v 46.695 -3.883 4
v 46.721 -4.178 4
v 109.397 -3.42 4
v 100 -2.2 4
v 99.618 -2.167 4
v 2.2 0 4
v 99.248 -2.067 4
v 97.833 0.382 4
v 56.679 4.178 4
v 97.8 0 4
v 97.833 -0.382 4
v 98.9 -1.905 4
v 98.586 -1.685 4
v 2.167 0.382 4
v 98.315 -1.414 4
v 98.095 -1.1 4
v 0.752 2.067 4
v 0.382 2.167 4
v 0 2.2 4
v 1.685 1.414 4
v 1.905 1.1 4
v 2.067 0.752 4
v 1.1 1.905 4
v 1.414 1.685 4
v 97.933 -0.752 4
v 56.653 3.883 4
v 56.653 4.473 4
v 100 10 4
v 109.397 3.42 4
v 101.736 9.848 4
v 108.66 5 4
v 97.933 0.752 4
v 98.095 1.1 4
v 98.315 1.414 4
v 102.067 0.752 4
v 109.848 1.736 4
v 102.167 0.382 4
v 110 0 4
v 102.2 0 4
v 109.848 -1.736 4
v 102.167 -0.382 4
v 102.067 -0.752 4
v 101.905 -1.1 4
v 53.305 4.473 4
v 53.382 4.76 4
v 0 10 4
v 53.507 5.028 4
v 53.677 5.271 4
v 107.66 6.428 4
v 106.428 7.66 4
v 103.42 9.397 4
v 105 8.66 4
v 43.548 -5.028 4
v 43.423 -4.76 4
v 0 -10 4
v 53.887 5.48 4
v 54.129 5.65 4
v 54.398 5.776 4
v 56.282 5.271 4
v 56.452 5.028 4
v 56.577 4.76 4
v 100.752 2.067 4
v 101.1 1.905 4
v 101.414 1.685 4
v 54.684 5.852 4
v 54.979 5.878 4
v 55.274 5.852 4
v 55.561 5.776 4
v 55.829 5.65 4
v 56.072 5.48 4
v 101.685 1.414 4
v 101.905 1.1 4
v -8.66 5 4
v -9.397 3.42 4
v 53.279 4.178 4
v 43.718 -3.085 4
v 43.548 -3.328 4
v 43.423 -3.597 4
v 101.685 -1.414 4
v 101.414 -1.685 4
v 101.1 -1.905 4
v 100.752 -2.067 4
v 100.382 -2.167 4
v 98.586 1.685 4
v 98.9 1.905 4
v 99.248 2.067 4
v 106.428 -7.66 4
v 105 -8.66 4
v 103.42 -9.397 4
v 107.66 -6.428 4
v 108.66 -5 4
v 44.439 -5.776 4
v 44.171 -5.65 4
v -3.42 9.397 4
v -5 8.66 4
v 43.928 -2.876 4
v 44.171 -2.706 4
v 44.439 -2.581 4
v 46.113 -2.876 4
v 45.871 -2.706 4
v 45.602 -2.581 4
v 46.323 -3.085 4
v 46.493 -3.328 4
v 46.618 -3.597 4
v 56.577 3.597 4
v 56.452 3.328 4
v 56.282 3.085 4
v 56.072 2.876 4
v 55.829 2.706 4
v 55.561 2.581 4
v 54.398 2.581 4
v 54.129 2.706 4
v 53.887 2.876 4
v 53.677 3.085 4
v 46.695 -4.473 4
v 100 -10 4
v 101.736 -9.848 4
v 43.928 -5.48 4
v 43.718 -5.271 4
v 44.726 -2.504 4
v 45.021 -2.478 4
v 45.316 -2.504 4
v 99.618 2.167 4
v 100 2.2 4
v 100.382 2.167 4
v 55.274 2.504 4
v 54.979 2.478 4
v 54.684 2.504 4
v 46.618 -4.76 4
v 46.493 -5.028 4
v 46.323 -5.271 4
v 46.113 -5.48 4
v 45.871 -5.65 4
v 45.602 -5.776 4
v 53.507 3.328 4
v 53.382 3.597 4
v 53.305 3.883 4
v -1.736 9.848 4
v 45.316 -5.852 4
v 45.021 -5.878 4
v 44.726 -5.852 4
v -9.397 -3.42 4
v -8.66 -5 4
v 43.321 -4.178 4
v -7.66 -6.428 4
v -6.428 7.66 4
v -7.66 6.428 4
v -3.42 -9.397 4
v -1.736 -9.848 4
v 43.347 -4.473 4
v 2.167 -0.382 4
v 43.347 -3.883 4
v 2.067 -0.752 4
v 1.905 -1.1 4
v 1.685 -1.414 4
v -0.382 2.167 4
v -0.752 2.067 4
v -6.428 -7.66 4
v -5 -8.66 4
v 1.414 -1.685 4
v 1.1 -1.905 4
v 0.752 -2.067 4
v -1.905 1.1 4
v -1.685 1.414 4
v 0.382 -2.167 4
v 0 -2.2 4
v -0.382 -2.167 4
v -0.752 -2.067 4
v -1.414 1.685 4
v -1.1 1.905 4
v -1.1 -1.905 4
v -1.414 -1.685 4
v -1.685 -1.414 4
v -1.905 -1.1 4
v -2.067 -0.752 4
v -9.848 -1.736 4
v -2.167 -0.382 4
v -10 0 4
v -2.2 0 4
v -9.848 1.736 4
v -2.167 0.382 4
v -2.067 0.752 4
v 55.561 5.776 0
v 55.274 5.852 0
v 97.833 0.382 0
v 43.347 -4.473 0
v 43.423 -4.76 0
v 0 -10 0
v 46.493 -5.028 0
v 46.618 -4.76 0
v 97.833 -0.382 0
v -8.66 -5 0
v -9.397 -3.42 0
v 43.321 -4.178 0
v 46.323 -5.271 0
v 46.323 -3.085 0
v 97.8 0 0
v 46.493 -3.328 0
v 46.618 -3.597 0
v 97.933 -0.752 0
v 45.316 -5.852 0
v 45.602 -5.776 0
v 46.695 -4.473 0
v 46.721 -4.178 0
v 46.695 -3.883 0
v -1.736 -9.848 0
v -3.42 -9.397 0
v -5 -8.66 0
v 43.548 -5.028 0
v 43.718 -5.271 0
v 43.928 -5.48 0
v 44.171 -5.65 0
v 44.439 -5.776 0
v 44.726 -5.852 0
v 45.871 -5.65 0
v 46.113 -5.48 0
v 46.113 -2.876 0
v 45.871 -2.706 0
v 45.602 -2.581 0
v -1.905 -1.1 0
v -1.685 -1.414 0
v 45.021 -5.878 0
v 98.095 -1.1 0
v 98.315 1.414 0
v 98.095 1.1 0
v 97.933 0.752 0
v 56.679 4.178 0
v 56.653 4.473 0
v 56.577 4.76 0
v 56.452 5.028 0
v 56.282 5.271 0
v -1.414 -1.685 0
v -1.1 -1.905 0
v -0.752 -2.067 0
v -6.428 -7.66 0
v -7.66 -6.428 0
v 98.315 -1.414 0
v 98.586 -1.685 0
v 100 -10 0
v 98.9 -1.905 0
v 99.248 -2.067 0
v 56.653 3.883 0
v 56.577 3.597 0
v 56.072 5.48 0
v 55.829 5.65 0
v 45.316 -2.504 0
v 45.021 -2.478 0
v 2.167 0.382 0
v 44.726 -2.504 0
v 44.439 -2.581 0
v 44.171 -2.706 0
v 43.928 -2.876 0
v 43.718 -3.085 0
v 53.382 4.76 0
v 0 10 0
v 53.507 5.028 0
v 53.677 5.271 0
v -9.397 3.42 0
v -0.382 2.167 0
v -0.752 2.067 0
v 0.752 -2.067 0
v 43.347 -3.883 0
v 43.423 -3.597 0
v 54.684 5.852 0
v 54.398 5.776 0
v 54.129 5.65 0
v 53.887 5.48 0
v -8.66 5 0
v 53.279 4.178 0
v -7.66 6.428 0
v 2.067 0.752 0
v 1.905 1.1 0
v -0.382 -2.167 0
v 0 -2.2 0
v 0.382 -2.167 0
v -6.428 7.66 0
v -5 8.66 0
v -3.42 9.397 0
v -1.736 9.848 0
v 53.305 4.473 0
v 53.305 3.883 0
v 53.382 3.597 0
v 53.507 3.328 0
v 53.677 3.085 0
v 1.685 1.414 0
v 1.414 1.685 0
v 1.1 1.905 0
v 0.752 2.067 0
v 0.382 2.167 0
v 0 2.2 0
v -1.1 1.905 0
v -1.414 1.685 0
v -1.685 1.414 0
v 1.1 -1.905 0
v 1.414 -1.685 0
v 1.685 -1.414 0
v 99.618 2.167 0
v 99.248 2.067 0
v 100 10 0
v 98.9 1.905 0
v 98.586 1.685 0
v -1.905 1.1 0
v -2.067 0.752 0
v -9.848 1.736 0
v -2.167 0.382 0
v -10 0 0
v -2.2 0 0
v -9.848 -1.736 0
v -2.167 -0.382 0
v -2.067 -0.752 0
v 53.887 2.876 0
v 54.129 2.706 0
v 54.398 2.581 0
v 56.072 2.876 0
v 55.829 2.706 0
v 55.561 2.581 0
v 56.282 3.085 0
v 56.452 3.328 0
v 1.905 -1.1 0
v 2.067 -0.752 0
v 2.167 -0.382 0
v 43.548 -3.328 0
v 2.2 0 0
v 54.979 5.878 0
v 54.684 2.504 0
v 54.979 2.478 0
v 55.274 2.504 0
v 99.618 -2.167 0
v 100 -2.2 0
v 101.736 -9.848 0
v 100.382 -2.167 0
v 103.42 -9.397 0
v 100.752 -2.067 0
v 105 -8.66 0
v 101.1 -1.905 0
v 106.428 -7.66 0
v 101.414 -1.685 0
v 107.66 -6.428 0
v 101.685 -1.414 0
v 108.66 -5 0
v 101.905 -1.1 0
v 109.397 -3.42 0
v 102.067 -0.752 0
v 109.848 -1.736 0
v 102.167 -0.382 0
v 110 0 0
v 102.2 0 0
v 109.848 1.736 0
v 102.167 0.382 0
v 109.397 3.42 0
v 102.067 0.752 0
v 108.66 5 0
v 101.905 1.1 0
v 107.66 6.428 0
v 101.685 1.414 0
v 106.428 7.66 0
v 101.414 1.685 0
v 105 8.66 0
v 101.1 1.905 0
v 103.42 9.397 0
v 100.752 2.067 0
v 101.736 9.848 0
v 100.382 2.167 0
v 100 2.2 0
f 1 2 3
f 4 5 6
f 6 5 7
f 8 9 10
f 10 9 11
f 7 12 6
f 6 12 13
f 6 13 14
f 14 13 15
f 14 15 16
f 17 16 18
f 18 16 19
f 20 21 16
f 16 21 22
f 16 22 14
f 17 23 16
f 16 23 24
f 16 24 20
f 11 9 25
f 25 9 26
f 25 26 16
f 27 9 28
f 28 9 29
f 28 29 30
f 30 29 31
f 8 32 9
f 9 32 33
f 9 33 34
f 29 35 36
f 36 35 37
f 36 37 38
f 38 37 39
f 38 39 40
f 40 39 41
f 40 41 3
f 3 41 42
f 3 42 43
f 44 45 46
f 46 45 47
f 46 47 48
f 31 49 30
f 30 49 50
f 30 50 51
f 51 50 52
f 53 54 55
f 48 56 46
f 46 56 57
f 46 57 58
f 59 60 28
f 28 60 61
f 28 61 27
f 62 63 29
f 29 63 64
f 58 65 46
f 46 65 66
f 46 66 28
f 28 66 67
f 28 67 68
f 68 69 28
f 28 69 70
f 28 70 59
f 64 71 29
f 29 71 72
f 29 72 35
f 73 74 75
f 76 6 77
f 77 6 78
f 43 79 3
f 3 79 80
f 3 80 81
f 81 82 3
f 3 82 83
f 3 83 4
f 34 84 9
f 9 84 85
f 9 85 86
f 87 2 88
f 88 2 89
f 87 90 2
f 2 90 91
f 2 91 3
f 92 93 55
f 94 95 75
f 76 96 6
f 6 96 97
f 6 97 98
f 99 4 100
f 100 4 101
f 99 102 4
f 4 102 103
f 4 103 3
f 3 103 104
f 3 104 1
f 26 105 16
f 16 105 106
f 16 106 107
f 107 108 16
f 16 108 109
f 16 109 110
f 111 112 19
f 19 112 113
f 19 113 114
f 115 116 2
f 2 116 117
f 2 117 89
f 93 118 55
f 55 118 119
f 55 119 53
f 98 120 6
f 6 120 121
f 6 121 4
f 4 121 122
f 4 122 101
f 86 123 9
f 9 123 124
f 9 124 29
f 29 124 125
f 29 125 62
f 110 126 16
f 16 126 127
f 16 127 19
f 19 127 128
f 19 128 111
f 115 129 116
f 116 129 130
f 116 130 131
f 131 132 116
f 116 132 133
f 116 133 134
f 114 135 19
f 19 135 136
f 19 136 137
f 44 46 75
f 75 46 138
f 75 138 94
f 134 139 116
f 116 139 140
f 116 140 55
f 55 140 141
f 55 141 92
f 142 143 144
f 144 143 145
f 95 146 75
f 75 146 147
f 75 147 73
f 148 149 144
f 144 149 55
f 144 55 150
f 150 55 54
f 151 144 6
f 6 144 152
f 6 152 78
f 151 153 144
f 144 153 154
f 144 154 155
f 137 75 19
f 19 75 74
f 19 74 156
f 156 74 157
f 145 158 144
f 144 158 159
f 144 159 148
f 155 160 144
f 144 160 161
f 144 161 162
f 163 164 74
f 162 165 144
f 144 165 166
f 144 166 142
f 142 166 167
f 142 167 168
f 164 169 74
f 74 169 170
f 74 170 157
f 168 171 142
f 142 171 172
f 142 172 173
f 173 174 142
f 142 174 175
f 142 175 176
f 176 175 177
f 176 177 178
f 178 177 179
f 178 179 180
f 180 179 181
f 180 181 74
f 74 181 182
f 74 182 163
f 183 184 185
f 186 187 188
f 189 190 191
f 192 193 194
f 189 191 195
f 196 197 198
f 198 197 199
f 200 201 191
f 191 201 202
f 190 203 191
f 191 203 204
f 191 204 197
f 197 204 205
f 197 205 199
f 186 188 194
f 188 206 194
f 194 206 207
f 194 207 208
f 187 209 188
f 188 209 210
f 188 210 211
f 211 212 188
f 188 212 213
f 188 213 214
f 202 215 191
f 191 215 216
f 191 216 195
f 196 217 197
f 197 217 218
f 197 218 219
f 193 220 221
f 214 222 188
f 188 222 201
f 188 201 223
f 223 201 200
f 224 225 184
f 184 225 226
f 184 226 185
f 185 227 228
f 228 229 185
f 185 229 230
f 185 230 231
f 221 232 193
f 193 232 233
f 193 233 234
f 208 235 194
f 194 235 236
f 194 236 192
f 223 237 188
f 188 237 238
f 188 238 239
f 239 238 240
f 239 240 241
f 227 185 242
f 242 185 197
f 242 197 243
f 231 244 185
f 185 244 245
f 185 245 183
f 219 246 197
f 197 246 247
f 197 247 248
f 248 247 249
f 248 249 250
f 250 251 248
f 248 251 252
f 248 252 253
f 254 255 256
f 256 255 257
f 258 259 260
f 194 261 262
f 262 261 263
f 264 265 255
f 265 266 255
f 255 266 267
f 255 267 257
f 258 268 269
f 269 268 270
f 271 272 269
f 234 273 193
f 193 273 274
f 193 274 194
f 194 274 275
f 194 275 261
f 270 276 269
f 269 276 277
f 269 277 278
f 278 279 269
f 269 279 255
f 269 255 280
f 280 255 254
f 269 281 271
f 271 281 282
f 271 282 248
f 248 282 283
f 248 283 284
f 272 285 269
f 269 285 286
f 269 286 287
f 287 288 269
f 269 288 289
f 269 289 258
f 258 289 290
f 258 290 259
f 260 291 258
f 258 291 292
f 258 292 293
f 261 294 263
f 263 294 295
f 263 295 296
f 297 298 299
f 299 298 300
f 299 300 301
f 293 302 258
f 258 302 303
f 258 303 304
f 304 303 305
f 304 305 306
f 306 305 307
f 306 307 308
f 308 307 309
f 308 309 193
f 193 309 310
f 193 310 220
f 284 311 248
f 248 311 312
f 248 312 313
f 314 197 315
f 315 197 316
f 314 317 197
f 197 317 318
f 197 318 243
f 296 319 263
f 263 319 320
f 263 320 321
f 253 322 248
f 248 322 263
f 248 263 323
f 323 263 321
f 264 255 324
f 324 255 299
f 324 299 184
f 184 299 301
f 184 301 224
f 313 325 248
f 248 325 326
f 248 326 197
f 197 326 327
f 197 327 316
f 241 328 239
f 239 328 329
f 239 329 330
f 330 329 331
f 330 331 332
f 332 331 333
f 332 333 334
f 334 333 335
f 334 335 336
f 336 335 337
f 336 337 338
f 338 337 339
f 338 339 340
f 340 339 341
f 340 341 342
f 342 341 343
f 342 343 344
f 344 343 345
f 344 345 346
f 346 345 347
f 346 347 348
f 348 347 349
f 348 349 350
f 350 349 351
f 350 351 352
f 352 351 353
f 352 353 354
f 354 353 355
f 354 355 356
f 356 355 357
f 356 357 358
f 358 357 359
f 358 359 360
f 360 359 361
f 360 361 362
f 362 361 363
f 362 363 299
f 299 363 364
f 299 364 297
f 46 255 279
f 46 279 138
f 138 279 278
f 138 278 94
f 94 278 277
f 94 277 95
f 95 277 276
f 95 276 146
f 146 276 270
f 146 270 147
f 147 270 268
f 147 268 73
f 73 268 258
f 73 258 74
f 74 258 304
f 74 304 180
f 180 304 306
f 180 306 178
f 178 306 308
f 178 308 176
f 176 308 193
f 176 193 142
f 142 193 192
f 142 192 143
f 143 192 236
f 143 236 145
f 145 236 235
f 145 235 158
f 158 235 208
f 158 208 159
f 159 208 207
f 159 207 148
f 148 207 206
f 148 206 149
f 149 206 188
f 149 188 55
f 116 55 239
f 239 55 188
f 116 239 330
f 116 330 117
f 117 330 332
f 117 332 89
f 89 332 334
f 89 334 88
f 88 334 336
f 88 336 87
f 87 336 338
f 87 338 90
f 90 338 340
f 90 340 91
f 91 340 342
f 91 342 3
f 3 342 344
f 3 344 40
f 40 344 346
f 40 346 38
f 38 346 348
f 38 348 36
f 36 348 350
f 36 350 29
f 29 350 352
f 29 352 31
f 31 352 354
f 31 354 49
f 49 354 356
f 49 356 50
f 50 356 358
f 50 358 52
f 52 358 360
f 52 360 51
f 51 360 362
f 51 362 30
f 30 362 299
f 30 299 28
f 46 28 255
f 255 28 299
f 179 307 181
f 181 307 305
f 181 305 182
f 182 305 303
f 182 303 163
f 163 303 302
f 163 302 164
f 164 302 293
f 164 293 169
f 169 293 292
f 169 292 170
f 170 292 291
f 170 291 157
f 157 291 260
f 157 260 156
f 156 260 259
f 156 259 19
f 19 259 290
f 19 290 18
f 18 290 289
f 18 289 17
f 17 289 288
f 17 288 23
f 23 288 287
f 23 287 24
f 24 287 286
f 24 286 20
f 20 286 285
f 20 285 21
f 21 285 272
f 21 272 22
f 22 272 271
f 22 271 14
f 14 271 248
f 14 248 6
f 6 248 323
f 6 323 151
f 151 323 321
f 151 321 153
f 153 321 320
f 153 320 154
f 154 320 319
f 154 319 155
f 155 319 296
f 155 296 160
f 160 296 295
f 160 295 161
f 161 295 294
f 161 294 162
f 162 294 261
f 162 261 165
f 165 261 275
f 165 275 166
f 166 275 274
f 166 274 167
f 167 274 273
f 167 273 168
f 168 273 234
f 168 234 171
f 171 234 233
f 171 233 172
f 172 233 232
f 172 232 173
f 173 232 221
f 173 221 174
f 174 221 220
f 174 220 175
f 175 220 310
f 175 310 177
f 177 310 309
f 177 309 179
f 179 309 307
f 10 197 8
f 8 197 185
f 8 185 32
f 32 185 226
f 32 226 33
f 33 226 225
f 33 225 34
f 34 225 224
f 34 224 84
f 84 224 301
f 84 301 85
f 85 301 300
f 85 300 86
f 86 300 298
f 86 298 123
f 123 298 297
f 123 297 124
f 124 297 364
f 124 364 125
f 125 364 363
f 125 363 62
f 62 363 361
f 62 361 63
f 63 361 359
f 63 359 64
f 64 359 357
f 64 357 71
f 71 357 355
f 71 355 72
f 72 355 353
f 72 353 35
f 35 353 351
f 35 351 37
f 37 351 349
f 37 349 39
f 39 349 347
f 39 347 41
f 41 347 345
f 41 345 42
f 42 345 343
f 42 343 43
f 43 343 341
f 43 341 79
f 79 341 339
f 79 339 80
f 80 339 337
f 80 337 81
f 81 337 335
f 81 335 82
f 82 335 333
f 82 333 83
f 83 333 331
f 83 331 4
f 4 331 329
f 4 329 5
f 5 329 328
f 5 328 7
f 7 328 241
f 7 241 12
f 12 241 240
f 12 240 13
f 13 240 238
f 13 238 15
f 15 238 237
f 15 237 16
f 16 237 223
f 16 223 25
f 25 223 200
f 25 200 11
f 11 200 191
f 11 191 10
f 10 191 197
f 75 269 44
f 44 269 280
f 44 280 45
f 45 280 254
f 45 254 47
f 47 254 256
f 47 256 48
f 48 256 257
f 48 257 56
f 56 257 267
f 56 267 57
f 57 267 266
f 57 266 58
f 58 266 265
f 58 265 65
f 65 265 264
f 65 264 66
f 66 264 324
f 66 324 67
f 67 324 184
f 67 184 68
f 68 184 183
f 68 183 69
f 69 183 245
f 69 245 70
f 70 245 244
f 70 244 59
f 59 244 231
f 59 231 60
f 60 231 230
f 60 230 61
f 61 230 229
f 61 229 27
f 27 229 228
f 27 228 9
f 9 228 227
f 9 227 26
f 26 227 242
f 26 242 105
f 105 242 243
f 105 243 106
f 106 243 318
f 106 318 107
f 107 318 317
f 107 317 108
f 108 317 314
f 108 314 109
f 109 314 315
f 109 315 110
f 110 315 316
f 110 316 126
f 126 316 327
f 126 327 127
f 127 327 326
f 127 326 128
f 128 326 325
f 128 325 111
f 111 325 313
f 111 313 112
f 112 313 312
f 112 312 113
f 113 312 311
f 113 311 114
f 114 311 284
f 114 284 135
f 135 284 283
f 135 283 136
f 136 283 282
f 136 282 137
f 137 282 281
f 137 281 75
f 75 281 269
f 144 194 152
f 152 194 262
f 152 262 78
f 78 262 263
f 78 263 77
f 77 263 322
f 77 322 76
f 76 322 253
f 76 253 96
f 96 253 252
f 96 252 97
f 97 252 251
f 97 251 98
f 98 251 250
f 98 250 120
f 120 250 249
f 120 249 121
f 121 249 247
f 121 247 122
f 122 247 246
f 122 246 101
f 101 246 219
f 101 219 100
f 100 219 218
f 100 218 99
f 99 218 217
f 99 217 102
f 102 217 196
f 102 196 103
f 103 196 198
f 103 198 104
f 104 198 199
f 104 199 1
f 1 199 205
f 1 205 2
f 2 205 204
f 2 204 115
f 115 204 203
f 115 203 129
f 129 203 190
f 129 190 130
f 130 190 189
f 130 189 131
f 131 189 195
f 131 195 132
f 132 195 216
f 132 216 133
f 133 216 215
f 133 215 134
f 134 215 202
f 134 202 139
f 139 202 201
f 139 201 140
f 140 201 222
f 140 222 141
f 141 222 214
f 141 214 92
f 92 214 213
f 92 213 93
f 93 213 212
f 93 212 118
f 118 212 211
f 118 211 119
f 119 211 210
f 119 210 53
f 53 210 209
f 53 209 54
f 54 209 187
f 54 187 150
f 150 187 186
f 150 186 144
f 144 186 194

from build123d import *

# Parameters (mm, degrees)
ESQUISSE1_R        = 2.2
ESQUISSE1_R_2      = 1.7
BOSS_EXTRU_1_DEPTH = 4


with BuildPart() as part:
    # Esquisse1 → Boss.-Extru.1 (new body)
    with BuildSketch(Plane.XY):
        with BuildLine():
            Line((0, 10), (100, 10))
            ThreePointArc((100, 10), (110, 0), (100, -10))
            Line((100, -10), (0, -10))
            ThreePointArc((0, -10), (-10, 0), (0, 10))
        make_face()
        Circle(ESQUISSE1_R, mode=Mode.SUBTRACT)
        with Locations((100, 0)):
            Circle(ESQUISSE1_R, mode=Mode.SUBTRACT)
        with Locations((54.97928888, 4.178119463)):
            Circle(ESQUISSE1_R_2, mode=Mode.SUBTRACT)
        with Locations((45.02071112, -4.178119463)):
            Circle(ESQUISSE1_R_2, mode=Mode.SUBTRACT)
    extrude(amount=BOSS_EXTRU_1_DEPTH)


solid = part.part
